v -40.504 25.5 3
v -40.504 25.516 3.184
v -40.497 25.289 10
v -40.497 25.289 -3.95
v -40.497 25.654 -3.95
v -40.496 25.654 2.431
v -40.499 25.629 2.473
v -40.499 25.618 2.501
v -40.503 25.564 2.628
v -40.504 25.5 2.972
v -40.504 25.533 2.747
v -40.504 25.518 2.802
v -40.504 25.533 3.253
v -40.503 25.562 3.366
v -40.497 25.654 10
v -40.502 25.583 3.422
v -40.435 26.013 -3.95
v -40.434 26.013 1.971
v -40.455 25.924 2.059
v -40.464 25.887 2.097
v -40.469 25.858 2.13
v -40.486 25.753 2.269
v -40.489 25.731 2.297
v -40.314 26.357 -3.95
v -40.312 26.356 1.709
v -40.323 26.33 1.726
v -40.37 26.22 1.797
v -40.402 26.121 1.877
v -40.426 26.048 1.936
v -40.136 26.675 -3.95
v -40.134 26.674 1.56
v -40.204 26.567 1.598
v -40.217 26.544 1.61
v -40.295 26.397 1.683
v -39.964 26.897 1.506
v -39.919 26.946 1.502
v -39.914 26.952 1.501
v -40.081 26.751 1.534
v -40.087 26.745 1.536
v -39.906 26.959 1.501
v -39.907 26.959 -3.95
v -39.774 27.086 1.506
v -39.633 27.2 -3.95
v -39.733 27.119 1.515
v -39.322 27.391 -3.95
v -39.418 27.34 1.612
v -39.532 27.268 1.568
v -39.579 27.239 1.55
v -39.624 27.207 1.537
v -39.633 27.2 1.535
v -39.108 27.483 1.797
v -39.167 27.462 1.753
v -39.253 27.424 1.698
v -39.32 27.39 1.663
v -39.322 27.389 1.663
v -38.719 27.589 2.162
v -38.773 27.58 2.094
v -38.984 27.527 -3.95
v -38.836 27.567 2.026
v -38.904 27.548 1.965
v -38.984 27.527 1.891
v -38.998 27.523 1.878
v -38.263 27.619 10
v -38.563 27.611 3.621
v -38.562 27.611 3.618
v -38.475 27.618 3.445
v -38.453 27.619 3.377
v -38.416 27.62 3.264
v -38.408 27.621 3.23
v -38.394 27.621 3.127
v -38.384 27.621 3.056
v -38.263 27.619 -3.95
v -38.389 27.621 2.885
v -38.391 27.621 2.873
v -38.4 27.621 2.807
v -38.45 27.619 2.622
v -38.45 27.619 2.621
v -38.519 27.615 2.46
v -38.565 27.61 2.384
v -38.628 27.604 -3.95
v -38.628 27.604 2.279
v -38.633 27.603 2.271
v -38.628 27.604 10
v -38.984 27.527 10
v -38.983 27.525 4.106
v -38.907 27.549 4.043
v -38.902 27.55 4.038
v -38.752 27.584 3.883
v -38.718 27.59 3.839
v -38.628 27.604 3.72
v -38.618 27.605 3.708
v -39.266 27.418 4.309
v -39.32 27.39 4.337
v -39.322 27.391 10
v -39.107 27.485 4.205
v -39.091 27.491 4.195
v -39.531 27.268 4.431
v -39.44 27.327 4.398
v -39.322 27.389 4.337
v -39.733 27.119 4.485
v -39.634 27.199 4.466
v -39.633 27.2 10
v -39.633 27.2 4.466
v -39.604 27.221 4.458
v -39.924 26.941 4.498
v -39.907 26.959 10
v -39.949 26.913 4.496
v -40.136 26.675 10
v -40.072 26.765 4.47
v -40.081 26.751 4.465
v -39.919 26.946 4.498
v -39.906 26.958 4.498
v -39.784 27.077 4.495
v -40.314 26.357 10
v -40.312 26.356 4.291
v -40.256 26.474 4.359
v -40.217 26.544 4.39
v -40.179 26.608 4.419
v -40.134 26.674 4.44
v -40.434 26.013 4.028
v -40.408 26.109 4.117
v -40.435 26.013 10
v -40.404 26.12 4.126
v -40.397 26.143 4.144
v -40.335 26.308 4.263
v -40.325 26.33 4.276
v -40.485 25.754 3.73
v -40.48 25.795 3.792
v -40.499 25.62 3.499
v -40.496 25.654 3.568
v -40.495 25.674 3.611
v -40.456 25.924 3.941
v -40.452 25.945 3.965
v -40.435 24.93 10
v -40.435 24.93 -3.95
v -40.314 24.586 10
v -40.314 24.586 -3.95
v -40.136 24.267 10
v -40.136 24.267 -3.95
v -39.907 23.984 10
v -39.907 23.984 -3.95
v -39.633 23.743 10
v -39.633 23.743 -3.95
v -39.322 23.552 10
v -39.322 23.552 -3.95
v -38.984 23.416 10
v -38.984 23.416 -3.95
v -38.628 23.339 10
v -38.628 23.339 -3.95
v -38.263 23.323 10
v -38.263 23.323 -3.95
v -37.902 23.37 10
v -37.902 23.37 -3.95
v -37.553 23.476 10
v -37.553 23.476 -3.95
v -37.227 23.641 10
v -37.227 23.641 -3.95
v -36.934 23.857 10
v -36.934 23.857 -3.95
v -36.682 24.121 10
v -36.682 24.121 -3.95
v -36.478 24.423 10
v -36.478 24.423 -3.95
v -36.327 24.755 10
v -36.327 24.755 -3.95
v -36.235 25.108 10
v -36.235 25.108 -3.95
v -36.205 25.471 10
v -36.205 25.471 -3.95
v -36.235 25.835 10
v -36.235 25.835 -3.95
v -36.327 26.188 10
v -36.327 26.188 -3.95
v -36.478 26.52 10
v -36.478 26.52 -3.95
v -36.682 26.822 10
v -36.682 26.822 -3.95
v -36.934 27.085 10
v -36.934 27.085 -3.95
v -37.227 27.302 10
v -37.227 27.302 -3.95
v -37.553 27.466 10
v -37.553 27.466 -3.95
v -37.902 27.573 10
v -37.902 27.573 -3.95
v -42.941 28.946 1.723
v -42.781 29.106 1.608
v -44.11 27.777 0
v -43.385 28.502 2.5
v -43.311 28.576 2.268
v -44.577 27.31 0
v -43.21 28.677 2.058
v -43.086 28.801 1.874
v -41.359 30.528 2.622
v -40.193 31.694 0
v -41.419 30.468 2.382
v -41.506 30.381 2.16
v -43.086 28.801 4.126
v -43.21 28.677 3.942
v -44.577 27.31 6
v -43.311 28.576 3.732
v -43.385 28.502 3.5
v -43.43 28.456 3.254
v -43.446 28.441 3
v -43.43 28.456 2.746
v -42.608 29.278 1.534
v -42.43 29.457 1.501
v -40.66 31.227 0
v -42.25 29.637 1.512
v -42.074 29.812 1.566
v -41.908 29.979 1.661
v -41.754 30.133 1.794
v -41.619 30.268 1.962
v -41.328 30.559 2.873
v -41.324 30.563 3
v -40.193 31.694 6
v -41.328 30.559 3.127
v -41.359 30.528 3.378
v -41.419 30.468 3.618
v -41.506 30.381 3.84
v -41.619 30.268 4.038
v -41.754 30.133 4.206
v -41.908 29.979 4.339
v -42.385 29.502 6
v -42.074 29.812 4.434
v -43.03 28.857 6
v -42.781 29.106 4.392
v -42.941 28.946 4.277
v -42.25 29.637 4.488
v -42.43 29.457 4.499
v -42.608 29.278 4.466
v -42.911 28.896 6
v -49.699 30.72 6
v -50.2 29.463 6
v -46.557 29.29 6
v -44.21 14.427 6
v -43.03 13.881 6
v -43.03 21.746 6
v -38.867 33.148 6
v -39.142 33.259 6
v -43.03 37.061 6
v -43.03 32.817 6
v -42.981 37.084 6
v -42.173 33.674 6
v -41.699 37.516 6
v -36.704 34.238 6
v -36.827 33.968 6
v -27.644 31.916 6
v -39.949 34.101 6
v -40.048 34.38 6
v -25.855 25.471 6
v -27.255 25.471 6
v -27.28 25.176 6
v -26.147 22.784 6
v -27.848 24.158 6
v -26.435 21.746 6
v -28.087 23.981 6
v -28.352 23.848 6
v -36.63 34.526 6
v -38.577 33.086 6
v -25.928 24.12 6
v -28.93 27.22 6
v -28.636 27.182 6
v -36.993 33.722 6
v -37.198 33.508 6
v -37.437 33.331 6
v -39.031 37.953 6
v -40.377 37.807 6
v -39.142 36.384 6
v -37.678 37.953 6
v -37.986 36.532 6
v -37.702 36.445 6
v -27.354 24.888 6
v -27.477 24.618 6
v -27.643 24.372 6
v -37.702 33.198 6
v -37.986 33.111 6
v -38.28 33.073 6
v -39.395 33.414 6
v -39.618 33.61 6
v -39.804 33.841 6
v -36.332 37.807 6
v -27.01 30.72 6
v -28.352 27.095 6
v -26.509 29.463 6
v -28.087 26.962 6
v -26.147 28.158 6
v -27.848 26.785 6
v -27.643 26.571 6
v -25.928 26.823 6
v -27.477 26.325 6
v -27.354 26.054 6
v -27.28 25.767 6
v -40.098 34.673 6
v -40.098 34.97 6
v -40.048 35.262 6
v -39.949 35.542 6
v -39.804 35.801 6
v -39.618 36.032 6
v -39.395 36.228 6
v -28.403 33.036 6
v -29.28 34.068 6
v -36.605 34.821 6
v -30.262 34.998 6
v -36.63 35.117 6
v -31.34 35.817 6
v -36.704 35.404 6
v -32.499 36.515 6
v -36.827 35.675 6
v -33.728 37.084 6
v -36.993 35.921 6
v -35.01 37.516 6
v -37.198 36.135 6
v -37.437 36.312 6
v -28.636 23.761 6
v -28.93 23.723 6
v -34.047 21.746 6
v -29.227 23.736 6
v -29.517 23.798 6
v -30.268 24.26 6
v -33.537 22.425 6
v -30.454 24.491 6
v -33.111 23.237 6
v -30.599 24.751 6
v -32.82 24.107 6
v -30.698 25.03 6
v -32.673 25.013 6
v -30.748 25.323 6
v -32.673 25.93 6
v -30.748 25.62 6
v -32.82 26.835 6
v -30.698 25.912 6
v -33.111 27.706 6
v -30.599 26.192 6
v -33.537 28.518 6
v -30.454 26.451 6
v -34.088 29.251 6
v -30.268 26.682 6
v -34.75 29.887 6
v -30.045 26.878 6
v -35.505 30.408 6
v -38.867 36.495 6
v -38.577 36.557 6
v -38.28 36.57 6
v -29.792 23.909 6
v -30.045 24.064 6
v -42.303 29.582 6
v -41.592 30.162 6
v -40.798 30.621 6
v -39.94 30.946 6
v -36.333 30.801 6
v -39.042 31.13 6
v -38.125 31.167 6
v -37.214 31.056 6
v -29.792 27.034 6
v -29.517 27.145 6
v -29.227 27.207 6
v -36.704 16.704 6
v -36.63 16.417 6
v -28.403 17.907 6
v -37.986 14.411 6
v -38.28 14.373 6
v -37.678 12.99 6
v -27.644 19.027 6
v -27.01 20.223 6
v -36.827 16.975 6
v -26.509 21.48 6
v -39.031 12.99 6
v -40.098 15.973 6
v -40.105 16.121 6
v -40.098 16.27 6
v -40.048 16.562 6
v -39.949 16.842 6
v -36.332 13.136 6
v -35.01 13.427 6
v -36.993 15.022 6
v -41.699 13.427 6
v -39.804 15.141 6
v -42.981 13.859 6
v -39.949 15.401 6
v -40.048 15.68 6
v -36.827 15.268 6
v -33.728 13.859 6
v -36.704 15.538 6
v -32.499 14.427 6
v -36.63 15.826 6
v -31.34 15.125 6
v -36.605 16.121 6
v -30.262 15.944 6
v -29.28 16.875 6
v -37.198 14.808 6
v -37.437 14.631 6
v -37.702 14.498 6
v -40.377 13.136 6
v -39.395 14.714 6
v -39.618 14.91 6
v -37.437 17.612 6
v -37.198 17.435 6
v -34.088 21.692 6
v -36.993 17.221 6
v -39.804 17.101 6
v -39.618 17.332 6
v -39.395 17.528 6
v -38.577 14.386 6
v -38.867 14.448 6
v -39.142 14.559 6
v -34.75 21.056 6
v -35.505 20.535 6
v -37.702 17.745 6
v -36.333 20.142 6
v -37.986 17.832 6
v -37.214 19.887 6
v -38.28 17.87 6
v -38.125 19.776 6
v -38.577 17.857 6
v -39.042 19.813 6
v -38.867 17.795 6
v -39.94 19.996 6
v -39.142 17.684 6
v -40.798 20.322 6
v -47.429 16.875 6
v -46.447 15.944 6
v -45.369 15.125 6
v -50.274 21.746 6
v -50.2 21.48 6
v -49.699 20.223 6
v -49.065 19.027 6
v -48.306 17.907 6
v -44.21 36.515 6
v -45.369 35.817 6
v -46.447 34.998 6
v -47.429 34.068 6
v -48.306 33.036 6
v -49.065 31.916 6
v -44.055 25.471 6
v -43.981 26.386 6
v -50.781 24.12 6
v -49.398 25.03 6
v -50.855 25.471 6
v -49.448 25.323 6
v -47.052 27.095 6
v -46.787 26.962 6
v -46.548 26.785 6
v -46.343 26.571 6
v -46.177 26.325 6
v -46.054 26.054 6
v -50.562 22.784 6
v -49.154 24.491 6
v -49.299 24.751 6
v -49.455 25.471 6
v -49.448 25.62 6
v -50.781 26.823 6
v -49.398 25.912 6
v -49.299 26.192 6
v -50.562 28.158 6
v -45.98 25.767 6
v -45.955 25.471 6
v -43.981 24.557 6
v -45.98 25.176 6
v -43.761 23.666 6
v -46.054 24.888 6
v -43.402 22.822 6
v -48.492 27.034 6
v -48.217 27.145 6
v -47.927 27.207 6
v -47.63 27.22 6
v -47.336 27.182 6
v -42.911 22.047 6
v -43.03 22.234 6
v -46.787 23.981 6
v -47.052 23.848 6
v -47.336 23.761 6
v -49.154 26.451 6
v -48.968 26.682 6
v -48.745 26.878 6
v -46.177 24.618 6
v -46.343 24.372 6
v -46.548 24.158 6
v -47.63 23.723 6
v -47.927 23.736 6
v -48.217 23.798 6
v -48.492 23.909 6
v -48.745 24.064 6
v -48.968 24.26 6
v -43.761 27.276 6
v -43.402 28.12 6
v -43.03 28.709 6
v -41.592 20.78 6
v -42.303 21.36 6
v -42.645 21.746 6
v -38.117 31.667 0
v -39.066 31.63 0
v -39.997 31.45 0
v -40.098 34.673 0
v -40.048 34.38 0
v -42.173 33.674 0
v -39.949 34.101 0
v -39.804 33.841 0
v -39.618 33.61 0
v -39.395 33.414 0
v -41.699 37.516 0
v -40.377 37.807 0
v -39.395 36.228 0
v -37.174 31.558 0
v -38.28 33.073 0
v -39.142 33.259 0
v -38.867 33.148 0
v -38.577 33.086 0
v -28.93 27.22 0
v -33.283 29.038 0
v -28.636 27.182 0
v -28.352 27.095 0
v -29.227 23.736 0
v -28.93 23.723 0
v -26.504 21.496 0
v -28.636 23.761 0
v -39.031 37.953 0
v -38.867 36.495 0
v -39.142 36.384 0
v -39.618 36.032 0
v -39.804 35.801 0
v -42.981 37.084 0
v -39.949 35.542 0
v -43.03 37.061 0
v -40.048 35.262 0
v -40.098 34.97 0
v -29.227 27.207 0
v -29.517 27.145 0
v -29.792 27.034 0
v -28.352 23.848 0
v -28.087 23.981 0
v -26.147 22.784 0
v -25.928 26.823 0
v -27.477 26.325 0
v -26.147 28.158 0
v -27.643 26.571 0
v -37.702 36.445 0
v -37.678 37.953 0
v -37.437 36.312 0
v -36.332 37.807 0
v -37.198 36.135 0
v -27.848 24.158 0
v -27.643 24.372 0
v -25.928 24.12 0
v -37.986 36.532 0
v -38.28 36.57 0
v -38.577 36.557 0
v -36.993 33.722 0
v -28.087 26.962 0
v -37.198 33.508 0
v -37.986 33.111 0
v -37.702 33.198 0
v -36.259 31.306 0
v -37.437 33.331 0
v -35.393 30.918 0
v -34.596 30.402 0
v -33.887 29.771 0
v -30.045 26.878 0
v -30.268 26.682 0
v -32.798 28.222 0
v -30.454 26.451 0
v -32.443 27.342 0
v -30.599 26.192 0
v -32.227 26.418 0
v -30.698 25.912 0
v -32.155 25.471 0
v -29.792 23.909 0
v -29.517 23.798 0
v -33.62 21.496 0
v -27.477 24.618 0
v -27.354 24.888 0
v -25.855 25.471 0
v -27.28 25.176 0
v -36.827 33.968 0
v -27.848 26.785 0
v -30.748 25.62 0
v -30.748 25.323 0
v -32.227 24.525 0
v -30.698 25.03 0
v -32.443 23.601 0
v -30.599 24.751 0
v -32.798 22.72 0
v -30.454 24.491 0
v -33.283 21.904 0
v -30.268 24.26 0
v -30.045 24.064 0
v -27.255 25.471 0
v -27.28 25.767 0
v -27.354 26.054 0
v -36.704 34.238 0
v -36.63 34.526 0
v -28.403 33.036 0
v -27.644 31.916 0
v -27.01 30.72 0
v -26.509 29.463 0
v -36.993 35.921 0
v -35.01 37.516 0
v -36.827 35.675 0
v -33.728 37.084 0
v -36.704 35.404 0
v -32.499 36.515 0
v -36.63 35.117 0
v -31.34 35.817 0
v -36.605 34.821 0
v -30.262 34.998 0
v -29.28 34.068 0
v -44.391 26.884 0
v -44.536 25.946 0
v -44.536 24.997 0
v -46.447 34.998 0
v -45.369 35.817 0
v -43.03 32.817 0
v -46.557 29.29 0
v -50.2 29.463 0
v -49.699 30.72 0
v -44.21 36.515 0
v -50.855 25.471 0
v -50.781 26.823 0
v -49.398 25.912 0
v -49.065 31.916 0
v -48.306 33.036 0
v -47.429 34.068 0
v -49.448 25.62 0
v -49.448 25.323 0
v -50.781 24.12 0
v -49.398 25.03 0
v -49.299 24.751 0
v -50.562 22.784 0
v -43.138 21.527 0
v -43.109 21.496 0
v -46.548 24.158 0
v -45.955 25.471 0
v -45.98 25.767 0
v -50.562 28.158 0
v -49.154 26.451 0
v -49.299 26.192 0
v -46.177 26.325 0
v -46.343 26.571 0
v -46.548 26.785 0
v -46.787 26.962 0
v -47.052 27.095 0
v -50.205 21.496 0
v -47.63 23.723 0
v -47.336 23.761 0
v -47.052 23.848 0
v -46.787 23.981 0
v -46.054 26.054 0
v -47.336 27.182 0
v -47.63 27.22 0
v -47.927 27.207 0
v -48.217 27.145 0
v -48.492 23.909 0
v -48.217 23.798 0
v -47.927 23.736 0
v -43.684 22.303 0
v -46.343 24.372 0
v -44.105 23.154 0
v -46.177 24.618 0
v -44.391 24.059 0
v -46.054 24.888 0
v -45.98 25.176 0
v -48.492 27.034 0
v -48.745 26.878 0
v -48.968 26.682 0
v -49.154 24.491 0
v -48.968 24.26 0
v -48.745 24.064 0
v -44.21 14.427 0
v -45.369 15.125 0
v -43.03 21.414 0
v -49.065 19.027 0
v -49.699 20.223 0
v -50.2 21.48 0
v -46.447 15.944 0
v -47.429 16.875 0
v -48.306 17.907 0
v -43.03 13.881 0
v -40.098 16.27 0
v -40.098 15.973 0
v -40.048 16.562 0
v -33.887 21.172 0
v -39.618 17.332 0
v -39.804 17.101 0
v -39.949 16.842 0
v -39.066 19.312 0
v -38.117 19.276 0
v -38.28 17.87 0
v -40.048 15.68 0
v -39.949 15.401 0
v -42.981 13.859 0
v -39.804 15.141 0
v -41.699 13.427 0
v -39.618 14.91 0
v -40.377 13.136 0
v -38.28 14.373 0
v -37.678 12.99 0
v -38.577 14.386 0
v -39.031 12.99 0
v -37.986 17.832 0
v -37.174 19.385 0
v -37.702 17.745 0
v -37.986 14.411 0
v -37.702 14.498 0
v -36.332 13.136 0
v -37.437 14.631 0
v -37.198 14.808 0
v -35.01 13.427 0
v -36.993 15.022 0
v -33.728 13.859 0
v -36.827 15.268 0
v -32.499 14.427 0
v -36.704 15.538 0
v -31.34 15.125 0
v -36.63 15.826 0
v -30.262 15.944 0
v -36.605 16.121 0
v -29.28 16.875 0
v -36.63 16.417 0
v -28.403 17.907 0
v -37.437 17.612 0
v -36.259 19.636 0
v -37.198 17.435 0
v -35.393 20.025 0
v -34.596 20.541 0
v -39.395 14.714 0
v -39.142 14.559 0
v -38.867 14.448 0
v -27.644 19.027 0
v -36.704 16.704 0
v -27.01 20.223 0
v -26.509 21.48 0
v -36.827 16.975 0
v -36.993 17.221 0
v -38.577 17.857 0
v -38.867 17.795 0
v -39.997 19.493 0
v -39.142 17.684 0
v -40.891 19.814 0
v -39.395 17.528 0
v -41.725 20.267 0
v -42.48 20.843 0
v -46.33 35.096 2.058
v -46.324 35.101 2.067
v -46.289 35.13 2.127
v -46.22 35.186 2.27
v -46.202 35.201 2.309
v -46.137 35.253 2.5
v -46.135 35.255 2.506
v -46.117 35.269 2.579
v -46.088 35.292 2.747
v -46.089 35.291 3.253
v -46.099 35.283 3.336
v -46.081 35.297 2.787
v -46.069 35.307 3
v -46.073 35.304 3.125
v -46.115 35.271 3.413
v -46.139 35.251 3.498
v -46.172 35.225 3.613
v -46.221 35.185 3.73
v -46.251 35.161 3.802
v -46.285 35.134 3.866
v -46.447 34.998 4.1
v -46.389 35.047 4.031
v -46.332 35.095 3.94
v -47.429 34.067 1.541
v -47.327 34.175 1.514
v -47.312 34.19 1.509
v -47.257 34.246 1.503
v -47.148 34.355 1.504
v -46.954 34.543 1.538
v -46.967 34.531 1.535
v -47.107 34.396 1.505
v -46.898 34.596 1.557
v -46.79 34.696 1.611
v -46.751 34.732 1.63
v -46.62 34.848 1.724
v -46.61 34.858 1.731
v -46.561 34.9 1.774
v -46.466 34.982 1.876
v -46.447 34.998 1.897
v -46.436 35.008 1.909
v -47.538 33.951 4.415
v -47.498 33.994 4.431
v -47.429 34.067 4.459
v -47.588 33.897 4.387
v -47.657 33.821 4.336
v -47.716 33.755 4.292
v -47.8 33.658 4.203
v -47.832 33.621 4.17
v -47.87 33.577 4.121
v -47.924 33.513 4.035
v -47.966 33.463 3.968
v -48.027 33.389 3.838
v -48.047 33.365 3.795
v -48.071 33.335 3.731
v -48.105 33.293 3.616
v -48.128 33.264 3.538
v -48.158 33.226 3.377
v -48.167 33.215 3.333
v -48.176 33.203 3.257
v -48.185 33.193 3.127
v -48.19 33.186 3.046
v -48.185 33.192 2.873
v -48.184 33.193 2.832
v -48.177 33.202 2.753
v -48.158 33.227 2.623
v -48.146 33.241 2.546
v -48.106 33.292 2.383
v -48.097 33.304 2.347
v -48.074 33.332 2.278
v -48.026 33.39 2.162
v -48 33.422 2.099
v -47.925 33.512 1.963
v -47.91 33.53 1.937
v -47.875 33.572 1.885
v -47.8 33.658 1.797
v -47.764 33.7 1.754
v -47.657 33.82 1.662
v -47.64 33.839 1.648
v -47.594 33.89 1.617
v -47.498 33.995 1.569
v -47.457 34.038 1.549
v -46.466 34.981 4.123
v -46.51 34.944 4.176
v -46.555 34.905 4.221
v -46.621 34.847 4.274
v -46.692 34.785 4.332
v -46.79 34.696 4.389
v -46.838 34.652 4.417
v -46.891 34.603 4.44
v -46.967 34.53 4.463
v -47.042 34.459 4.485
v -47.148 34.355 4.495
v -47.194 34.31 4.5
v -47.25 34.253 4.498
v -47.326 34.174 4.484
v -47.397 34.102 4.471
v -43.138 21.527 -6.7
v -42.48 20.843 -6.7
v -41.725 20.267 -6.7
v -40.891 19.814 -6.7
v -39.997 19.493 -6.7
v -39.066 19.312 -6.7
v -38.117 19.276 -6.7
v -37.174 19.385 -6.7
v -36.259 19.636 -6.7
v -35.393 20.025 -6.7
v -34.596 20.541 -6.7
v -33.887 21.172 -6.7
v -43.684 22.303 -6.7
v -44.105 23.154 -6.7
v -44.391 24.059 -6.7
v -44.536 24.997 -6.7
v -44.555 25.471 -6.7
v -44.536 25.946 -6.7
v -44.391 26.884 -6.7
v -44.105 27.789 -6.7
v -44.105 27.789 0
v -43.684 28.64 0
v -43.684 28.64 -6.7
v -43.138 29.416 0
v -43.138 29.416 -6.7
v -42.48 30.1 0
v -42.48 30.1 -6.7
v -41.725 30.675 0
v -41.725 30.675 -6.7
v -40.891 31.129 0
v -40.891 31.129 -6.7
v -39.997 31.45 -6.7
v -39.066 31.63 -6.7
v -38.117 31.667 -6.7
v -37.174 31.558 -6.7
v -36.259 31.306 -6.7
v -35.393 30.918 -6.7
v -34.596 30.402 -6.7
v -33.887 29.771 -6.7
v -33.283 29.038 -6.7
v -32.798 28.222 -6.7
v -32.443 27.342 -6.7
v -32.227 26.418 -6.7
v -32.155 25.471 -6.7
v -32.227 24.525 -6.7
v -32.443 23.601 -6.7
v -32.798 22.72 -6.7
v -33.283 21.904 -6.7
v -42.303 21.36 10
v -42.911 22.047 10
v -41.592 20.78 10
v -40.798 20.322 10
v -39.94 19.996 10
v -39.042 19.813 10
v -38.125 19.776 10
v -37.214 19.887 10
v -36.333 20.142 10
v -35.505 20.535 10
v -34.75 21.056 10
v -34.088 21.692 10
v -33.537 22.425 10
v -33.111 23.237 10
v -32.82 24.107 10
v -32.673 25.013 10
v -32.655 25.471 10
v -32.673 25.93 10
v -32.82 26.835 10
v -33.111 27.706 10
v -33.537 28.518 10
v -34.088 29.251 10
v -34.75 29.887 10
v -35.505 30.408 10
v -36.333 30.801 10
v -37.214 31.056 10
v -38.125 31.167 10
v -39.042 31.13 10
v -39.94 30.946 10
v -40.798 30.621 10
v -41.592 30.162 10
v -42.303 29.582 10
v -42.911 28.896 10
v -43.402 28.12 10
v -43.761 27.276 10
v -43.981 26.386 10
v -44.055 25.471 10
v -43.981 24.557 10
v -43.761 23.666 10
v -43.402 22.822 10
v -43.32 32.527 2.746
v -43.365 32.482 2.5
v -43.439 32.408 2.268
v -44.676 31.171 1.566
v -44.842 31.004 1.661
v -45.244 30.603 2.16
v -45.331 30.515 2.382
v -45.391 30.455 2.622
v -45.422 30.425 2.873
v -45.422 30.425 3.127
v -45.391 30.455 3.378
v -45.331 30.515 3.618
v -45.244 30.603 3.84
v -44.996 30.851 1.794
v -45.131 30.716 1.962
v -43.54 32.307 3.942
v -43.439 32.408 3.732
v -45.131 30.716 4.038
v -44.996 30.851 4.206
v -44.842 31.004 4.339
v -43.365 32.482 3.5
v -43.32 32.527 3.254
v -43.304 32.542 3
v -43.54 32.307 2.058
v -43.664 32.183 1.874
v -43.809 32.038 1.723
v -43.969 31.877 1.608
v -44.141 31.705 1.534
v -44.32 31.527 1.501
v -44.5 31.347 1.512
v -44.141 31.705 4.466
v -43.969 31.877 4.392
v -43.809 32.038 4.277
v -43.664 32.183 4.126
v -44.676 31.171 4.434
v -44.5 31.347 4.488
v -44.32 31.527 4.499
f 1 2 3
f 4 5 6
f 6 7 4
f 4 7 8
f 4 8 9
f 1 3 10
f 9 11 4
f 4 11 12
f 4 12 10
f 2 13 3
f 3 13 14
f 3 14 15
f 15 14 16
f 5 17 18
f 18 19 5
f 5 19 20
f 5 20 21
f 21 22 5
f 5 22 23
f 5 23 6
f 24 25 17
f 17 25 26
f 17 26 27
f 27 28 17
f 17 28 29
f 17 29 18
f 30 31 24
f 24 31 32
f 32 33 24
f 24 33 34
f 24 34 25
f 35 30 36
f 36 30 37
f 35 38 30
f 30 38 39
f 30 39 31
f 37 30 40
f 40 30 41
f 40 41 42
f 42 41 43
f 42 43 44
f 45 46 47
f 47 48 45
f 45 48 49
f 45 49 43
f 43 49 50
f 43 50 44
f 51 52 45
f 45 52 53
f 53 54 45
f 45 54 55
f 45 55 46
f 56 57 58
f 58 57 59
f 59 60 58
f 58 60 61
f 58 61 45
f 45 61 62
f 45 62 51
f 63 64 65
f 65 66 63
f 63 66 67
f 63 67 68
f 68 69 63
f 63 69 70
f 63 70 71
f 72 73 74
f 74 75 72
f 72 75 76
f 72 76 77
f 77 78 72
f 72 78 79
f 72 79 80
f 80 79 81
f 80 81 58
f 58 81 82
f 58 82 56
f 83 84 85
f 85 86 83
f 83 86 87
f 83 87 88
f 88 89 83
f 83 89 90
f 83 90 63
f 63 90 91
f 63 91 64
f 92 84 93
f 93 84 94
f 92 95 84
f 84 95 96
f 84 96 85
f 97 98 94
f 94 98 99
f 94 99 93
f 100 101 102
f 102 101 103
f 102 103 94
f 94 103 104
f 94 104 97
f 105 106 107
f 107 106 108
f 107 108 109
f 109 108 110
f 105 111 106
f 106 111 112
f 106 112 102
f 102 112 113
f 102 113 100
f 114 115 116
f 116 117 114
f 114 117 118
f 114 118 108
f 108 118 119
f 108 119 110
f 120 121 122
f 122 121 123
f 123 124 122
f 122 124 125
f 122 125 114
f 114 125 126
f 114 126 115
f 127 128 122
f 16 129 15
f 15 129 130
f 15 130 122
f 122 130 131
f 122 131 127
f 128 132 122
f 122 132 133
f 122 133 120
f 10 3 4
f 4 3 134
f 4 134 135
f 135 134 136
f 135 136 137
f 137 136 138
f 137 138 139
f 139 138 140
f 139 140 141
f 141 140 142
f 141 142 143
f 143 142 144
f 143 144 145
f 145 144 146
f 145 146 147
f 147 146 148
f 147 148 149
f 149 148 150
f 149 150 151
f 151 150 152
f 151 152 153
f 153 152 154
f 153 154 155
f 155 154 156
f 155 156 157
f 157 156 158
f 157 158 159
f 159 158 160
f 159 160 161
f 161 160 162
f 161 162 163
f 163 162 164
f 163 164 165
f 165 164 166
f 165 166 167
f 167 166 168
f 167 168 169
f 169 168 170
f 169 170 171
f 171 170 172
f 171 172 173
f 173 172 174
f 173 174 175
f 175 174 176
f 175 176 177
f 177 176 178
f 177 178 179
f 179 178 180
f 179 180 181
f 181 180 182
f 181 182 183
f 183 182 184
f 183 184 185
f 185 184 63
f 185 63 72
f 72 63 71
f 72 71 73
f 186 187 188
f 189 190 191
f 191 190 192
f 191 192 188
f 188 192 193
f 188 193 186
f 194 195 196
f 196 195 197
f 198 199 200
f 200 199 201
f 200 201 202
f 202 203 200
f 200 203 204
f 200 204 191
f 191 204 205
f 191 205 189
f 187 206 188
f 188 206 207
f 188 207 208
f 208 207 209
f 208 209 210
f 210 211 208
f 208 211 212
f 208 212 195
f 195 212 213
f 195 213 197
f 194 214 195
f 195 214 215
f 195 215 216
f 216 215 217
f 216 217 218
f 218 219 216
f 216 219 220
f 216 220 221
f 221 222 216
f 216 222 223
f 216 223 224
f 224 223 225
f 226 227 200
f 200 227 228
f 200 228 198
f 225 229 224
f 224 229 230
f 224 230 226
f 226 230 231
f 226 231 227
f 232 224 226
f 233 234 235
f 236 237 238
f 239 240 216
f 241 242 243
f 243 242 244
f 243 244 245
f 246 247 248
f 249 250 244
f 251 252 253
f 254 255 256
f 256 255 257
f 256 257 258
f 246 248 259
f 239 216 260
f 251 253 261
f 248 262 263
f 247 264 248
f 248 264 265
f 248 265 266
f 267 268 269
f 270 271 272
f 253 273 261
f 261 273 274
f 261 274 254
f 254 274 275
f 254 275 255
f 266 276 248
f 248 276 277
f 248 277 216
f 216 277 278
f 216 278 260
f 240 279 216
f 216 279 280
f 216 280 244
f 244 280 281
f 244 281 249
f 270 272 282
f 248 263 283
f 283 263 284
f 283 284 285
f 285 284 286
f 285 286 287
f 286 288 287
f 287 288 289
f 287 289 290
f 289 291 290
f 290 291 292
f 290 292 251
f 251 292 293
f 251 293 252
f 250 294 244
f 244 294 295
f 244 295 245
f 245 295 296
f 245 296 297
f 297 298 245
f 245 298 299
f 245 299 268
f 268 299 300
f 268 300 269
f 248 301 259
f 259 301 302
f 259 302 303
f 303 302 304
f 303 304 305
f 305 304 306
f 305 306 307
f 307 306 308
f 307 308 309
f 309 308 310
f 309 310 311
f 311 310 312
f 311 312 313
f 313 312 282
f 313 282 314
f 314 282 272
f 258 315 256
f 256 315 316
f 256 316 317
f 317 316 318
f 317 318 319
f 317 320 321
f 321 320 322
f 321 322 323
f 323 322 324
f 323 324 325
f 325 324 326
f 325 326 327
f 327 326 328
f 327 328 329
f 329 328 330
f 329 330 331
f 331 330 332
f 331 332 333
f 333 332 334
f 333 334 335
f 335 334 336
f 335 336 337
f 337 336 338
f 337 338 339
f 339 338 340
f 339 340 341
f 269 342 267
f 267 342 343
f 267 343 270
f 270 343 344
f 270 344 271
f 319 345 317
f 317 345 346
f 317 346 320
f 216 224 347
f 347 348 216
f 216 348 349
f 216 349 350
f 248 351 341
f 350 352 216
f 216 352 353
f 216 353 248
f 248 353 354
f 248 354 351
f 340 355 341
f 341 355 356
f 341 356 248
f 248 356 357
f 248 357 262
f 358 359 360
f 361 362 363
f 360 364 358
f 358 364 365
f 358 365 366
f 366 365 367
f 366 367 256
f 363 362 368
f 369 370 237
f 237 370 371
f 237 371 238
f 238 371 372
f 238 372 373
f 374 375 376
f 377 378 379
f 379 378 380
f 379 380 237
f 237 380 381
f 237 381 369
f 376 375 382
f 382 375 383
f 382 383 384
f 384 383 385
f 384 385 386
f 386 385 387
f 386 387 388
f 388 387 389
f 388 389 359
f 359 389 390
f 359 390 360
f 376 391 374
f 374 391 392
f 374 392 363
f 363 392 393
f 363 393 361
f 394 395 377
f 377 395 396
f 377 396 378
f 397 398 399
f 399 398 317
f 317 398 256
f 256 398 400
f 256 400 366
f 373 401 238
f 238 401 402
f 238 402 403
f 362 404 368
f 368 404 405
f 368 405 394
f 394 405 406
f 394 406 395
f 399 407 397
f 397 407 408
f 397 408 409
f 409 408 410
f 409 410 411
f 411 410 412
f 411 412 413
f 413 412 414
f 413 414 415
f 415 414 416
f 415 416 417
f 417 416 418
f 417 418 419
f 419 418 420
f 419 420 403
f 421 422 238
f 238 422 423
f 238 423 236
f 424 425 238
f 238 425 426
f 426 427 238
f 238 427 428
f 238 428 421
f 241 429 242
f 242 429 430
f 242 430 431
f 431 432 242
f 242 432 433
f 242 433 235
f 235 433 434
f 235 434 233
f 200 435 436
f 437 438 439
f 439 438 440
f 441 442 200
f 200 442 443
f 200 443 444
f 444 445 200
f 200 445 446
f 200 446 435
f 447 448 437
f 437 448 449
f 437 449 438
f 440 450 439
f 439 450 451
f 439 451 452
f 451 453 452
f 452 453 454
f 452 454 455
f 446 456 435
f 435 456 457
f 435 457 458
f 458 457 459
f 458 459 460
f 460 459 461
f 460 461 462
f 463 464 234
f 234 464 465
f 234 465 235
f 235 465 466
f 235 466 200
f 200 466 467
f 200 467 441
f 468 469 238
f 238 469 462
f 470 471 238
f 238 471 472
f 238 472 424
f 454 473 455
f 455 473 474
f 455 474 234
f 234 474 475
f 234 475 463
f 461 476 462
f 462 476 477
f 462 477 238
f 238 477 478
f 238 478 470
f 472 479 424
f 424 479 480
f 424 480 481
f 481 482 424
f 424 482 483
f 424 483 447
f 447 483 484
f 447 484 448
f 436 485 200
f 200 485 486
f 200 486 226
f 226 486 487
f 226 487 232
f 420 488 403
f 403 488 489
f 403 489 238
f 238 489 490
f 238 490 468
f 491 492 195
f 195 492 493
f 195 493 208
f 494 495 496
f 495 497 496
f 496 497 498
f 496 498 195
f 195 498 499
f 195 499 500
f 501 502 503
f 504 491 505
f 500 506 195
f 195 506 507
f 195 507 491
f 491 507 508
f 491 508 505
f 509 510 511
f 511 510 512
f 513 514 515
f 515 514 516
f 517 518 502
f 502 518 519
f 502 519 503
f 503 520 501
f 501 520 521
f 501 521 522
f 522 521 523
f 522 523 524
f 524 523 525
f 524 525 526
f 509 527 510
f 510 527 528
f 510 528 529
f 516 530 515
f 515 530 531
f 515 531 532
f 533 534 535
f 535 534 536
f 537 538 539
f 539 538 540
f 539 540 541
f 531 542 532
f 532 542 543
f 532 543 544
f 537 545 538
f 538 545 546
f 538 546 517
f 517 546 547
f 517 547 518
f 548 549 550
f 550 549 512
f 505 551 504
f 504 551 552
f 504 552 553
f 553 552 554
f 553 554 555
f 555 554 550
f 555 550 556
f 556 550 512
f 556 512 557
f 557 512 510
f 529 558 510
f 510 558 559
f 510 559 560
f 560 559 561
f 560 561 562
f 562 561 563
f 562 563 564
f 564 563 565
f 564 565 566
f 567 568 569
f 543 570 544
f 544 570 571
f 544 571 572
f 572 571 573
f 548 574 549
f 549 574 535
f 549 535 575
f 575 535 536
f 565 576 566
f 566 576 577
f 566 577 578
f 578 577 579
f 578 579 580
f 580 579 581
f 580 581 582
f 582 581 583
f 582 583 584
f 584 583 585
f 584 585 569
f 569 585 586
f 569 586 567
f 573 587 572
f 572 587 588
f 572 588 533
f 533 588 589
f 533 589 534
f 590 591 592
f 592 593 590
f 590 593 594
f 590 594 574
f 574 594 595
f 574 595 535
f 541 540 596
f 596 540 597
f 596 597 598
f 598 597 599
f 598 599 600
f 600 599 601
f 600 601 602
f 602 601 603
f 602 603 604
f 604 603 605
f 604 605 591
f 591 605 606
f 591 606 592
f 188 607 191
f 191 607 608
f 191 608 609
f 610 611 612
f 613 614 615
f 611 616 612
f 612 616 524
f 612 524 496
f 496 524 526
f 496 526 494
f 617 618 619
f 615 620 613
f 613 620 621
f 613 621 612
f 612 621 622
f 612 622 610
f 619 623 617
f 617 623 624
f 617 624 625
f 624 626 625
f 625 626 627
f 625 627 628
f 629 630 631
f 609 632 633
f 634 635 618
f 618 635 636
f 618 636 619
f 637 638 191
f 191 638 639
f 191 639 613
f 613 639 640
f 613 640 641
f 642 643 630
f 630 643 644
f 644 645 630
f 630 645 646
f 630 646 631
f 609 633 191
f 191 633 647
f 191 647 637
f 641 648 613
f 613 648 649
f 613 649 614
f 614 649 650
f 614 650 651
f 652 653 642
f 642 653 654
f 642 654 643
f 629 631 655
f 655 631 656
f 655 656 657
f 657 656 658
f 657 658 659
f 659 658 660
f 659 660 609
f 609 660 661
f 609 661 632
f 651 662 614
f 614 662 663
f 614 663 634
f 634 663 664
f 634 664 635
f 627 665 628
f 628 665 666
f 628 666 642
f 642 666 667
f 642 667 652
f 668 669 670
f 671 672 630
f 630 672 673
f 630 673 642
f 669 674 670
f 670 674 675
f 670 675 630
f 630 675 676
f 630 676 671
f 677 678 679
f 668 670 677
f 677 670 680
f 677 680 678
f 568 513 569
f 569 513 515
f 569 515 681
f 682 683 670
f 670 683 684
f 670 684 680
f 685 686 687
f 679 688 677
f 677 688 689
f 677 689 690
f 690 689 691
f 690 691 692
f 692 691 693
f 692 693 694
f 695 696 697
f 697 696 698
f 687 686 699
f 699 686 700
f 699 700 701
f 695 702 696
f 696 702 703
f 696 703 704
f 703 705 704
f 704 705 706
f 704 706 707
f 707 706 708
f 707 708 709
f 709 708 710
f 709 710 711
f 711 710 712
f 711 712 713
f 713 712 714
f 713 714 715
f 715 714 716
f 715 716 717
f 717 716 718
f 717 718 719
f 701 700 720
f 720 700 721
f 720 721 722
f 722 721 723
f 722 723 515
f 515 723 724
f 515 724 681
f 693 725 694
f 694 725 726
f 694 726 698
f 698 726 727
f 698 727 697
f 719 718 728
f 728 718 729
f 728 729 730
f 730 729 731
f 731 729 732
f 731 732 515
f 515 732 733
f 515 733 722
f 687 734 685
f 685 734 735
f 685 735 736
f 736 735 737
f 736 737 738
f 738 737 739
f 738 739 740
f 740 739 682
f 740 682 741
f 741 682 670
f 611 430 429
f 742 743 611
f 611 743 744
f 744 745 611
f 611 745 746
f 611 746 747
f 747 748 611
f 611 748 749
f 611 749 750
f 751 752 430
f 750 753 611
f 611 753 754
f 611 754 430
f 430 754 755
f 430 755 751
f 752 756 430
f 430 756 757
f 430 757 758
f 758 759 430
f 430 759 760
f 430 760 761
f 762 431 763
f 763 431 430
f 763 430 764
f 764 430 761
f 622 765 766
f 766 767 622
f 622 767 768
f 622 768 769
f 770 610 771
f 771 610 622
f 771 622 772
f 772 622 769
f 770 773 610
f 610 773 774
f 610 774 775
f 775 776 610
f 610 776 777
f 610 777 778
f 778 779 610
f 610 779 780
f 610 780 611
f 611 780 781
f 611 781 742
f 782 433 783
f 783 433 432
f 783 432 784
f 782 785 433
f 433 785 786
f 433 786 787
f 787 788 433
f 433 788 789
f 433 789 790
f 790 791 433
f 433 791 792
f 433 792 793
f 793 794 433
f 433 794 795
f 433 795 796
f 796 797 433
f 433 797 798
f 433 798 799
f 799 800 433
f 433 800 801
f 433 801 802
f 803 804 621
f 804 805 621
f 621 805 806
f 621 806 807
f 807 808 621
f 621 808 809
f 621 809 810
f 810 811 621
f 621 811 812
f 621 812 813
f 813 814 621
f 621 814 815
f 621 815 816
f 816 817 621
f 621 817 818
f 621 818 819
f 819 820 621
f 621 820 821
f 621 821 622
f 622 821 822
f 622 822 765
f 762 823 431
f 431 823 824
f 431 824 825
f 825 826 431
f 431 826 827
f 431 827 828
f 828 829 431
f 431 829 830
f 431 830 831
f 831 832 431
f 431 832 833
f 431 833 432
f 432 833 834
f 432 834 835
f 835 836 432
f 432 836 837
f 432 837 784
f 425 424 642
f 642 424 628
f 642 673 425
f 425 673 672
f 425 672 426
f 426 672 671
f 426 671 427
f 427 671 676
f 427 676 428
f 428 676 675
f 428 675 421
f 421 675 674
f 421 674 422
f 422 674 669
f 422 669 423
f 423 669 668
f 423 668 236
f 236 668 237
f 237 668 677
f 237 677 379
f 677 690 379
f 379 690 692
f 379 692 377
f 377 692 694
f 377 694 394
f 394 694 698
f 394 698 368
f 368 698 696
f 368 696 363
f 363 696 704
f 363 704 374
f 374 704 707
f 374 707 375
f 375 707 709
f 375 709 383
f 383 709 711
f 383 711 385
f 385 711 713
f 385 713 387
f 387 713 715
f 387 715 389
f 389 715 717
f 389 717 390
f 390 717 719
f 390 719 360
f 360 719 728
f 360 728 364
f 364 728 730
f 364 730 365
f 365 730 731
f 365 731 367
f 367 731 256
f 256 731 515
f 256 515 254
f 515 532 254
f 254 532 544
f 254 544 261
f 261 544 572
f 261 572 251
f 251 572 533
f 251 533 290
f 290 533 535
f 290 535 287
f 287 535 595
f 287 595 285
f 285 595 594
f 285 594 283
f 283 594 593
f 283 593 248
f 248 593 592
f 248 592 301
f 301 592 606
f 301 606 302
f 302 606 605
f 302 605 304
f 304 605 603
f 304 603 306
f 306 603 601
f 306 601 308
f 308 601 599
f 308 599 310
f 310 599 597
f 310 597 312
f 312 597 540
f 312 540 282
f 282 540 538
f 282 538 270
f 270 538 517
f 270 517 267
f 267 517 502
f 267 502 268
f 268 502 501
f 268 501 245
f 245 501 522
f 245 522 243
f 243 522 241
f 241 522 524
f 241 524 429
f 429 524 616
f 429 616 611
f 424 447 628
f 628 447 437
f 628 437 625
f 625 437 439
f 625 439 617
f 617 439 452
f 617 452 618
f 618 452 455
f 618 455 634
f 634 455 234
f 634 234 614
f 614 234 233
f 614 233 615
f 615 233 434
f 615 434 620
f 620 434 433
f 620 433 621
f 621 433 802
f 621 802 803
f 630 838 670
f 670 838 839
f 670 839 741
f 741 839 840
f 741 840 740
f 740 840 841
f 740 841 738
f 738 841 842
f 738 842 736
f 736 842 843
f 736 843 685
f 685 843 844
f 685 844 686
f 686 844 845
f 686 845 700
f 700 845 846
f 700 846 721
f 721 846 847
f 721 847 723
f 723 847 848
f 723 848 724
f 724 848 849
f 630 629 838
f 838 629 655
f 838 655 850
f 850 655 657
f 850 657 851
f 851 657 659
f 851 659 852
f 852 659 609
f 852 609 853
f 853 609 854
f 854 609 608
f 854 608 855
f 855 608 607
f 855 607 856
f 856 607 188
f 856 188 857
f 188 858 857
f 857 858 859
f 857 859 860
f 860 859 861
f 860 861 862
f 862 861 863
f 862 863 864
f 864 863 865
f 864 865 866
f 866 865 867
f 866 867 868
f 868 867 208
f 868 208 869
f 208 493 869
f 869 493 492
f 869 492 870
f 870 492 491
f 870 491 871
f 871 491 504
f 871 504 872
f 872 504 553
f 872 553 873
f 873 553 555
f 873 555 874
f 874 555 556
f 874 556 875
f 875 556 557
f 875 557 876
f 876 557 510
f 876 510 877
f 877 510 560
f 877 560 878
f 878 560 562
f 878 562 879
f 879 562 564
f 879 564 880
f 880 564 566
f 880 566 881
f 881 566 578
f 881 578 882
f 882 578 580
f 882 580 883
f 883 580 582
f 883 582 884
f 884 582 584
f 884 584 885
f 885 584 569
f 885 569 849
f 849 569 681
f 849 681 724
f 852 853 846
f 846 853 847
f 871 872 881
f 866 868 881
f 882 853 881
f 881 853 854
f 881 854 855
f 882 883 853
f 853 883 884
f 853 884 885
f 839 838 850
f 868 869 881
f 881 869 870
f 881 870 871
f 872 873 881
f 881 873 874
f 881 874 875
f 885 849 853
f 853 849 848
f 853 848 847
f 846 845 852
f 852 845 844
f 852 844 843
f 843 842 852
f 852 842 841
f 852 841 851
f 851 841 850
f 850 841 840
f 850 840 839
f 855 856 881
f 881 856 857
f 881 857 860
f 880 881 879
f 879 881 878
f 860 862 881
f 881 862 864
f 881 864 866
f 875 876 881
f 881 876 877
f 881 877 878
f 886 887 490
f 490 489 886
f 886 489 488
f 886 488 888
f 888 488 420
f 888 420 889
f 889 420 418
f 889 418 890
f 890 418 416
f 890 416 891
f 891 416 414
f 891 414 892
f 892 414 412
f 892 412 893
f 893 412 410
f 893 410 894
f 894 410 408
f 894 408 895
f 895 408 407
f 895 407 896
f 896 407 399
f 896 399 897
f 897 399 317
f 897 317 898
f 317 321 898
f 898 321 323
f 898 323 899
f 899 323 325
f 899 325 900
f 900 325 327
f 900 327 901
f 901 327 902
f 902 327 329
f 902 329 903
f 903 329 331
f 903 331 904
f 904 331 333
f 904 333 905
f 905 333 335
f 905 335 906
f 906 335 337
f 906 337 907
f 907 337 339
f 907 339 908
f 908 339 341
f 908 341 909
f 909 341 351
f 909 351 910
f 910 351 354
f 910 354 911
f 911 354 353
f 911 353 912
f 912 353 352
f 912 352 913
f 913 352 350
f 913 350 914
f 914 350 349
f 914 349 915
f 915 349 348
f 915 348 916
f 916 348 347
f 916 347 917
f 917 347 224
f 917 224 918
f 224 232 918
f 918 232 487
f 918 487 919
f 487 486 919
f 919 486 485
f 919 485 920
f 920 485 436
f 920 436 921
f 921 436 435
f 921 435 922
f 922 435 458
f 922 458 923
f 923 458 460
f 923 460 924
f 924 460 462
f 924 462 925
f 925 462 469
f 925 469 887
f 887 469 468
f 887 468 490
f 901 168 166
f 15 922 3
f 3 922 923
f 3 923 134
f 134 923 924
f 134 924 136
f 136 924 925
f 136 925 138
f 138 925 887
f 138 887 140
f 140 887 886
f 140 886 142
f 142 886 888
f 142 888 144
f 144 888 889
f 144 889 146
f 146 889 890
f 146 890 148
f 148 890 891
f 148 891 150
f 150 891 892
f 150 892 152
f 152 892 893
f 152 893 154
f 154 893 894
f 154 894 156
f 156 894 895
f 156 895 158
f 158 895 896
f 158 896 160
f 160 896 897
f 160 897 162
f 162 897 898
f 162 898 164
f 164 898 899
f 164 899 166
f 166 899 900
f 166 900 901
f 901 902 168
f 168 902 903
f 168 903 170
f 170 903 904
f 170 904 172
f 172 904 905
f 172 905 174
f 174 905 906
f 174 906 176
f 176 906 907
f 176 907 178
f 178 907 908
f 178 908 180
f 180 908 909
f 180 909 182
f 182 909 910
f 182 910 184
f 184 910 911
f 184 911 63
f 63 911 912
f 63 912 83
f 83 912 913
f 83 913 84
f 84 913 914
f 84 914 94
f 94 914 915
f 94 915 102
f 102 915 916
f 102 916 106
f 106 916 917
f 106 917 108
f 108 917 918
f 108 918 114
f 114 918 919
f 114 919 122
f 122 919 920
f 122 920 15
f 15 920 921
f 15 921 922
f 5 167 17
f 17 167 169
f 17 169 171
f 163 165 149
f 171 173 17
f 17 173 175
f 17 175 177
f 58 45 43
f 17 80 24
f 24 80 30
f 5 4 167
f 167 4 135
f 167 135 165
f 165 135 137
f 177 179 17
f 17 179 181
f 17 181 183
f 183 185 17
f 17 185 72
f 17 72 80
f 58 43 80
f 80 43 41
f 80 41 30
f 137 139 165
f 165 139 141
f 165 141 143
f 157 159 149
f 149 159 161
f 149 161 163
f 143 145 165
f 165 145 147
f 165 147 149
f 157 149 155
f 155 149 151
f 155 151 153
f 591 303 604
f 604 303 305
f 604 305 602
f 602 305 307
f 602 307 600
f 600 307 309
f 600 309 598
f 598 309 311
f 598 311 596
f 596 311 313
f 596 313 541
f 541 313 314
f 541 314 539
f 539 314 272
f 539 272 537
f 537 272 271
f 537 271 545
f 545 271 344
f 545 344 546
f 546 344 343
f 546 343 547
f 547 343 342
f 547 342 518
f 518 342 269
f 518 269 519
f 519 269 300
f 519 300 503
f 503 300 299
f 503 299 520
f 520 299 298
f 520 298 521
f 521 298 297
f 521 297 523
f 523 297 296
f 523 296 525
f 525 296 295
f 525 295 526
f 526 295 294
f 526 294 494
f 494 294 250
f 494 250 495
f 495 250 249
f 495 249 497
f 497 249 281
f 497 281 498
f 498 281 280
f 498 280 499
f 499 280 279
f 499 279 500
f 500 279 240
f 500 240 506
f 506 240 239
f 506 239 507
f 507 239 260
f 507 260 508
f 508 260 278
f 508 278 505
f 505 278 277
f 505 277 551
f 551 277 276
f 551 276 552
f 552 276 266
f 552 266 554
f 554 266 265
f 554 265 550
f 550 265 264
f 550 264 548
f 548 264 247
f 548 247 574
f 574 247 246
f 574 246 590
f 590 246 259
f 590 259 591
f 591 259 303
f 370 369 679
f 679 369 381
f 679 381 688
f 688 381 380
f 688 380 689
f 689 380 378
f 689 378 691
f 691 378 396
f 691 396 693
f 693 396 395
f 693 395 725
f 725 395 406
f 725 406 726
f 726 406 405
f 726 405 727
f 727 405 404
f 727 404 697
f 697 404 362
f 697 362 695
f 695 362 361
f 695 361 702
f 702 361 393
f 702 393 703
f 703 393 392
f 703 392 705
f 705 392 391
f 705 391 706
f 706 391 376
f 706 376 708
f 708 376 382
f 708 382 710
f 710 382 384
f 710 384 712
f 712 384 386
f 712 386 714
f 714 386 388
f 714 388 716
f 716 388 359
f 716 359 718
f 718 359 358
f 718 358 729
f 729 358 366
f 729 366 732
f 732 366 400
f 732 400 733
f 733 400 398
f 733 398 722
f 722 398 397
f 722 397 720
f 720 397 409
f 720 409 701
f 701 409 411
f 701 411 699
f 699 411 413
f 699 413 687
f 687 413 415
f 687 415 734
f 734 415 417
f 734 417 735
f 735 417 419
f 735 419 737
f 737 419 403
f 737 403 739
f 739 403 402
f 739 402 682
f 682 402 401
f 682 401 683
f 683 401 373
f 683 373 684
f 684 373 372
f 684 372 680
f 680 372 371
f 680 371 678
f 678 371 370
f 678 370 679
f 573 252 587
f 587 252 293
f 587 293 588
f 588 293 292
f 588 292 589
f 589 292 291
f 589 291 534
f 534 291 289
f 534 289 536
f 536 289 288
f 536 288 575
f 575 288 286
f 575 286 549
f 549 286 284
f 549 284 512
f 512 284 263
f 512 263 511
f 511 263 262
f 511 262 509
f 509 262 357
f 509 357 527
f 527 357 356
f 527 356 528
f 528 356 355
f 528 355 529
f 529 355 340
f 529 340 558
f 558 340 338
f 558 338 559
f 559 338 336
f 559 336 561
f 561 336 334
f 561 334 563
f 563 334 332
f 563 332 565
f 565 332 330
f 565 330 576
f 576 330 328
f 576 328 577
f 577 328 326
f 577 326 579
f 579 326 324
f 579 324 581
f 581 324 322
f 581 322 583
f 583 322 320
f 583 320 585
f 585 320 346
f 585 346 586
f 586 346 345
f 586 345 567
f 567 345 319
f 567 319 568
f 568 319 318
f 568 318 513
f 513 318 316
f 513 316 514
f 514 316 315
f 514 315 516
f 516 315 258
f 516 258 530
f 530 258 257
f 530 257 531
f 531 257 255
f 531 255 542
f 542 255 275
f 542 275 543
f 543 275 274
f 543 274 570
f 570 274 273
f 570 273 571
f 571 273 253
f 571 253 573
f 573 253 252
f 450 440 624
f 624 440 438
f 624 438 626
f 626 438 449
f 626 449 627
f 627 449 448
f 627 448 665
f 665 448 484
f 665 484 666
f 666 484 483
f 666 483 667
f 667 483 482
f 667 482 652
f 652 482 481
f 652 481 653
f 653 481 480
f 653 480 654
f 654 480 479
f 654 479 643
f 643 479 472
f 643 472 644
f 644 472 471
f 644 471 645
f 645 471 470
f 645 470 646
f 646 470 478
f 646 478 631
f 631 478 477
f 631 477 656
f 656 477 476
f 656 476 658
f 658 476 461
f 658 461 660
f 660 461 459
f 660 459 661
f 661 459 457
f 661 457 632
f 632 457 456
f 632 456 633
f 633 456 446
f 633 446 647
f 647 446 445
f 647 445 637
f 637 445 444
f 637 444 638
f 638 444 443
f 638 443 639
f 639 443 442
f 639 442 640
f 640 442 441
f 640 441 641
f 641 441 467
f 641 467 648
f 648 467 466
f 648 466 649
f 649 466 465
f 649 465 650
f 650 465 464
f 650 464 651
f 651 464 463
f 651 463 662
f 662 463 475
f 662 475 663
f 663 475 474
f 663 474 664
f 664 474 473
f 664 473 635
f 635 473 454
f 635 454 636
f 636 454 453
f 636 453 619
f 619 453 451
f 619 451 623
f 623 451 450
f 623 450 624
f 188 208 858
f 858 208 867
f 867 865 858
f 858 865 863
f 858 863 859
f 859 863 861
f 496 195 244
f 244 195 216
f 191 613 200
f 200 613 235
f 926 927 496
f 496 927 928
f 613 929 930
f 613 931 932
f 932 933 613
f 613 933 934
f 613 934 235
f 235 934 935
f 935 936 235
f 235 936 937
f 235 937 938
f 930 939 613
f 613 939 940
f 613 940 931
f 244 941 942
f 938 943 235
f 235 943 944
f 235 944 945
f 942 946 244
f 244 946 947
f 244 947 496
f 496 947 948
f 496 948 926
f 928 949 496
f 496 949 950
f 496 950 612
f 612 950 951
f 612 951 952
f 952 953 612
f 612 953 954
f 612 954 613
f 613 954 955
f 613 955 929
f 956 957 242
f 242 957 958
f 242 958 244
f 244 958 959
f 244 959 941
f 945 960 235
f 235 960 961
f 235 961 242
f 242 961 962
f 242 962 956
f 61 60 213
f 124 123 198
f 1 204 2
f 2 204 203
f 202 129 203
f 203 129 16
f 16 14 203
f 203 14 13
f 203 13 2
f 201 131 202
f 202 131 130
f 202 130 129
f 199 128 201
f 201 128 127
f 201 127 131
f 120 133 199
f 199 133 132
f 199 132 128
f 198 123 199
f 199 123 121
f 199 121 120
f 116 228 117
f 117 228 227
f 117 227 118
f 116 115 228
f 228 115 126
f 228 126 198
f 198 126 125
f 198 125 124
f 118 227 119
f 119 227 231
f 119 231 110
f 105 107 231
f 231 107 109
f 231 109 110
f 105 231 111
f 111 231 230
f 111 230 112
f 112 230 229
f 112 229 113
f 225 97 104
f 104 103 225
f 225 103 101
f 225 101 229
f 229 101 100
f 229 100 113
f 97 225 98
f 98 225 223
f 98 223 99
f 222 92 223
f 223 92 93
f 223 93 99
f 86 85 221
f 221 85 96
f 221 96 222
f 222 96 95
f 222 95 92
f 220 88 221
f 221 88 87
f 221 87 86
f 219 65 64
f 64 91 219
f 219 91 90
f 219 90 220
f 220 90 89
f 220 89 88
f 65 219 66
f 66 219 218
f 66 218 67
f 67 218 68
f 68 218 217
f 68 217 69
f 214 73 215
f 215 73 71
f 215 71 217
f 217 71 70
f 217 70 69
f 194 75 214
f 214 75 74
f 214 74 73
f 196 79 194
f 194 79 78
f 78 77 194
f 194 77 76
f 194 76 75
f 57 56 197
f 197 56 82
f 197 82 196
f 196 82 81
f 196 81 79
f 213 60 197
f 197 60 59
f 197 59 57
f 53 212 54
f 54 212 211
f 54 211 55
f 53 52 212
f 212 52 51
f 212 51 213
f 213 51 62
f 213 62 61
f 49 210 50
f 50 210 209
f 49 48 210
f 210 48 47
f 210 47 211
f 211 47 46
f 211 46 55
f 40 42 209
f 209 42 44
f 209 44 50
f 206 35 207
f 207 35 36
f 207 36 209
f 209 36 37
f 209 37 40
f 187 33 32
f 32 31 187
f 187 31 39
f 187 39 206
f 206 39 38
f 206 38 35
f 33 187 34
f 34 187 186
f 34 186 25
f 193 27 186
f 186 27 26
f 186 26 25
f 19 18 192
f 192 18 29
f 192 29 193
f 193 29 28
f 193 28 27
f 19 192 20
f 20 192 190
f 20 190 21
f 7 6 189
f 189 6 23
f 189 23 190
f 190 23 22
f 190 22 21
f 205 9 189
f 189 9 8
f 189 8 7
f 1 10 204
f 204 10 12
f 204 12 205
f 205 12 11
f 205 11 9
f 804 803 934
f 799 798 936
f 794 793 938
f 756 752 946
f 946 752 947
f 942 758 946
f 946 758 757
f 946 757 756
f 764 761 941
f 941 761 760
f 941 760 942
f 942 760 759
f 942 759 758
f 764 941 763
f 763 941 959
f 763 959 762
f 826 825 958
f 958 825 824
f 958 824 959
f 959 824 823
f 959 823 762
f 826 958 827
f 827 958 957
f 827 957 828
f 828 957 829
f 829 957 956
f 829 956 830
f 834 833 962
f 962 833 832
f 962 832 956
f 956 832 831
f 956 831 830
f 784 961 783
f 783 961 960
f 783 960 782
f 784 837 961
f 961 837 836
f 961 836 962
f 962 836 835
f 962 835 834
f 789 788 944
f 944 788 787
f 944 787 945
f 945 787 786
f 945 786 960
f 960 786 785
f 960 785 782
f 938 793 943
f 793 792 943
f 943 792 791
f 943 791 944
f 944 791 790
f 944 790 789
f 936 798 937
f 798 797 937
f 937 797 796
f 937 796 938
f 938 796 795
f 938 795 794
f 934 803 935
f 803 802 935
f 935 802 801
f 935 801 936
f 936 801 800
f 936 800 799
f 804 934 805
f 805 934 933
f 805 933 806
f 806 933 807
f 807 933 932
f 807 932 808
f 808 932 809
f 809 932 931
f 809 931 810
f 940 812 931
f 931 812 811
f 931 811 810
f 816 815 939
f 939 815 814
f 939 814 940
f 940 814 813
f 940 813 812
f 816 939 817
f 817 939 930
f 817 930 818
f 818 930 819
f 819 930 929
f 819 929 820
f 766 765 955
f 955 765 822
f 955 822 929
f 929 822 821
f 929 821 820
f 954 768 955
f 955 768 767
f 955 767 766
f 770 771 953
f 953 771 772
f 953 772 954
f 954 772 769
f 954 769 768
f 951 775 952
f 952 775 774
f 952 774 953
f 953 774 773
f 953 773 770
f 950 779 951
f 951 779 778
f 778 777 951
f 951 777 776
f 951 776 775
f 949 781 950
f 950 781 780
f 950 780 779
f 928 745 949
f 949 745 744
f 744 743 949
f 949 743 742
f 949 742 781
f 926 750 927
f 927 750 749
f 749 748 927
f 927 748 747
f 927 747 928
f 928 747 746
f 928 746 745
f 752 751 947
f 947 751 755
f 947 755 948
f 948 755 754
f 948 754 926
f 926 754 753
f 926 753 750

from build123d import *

# Parameters (mm, degrees)
ESBO_O1_R                         = 12.5
RESSALTO_EXTRUS_O1_DEPTH          = 6
ESBO_O5_R                         = 6.2
RESSALTO_EXTRUS_O2_DEPTH          = 6.7
ESBO_O6_R                         = 5.7
RESSALTO_EXTRUS_O3_DEPTH          = 4
ESBO_O7_R                         = 2.15
CORTE_EXTRUS_O1_DEPTH             = 13.95
ESBO_O10_R                        = 1.75
CORTE_EXTRUS_O2_DEPTH             = 65.724771281
CORTE_EXTRUS_O3_DEPTH             = 6
CORTE_EXTRUS_O4_REACH             = 31.83
ESBO_O12_R                        = 1.5
CORTE_EXTRUS_O4_DIRECTION_2_REACH = 31.83


with BuildPart() as part:
    # Esboço1 → Ressalto-extrusão1 (new body)
    with BuildSketch(Plane.XY):
        with Locations(Location((-38.354525113, 25.471348315, 0), (0, 0, 180))):
            Circle(ESBO_O1_R)
    extrude(amount=RESSALTO_EXTRUS_O1_DEPTH)

    # Esboço5 → Ressalto-extrusão2 (add)
    with BuildSketch(Plane(origin=(0, 0, 0), x_dir=(-1, 0, 0), z_dir=(0, 0, -1))):
        with Locations(Location((38.354525113, 25.471348315, 0), (0, 0, 180))):
            Circle(ESBO_O5_R)
    extrude(amount=RESSALTO_EXTRUS_O2_DEPTH)

    # Esboço6 → Ressalto-extrusão3 (add)
    with BuildSketch(Plane.XY.offset(6)):
        with Locations((-38.354525113, 25.471348315)):
            Circle(ESBO_O6_R)
    extrude(amount=RESSALTO_EXTRUS_O3_DEPTH)

    # Esboço7 → Corte-extrusão1 (cut)
    with BuildSketch(Plane.XY.offset(10)):
        with Locations((-38.354525113, 25.471348315)):
            Circle(ESBO_O7_R)
    extrude(amount=-CORTE_EXTRUS_O1_DEPTH, mode=Mode.SUBTRACT)

    # Esboço10 → Corte-extrusão2 (cut, through all)
    with BuildSketch(Plane.XY.offset(6)):
        with Locations((-38.354525113, 34.821348315)):
            Circle(ESBO_O10_R)
        with Locations((-38.354525113, 16.121348315)):
            Circle(ESBO_O10_R)
        with Locations((-29.004525113, 25.471348315)):
            Circle(ESBO_O10_R)
        with Locations((-47.704525113, 25.471348315)):
            Circle(ESBO_O10_R)
    extrude(amount=-CORTE_EXTRUS_O2_DEPTH, mode=Mode.SUBTRACT)

    # Esboço9 → Corte-extrusão3 (cut)
    with BuildSketch(Plane.XY.offset(6)):
        Polygon((-44.577064788, 27.309825946), (-40.193002744, 31.693887989), (-42.172901732, 33.673786976), (-46.556963775, 29.289724933), align=None)
    extrude(amount=-CORTE_EXTRUS_O3_DEPTH, mode=Mode.SUBTRACT)

    # Esboço12 → Corte-extrusão4 (cut, up to next)
    with BuildSketch(Plane(origin=(-37.923344354, 37.923344354, 0), x_dir=(0, 0, -1), z_dir=(0.7071067811865457, -0.7071067811865493, 0)), mode=Mode.PRIVATE) as corte_extrus_o4_sk1:
        with Locations(Location((-3, -9.109781678, 0), (0, 0, 270))):
            Circle(ESBO_O12_R)
    corte_extrus_o4_tool1 = extrude(corte_extrus_o4_sk1.sketch, amount=-CORTE_EXTRUS_O4_REACH, mode=Mode.PRIVATE) & part.part
    add(corte_extrus_o4_tool1.solids().sort_by_distance((-44.364933, 31.481756, 3))[0], mode=Mode.SUBTRACT)

    # Esboço12 → Corte-extrusão4 direction 2 (cut, up to next)
    with BuildSketch(Plane(origin=(-37.923344354, 37.923344354, 0), x_dir=(0, 0, -1), z_dir=(0.7071067811865457, -0.7071067811865493, 0)), mode=Mode.PRIVATE) as corte_extrus_o4_direction_2_sk1:
        with Locations(Location((-3, -9.109781678, 0), (0, 0, 270))):
            Circle(ESBO_O12_R)
    corte_extrus_o4_direction_2_tool1 = extrude(corte_extrus_o4_direction_2_sk1.sketch, amount=CORTE_EXTRUS_O4_DIRECTION_2_REACH, mode=Mode.PRIVATE) & part.part
    add(corte_extrus_o4_direction_2_tool1.solids().sort_by_distance((-44.364933, 31.481756, 3))[0], mode=Mode.SUBTRACT)


solid = part.part
